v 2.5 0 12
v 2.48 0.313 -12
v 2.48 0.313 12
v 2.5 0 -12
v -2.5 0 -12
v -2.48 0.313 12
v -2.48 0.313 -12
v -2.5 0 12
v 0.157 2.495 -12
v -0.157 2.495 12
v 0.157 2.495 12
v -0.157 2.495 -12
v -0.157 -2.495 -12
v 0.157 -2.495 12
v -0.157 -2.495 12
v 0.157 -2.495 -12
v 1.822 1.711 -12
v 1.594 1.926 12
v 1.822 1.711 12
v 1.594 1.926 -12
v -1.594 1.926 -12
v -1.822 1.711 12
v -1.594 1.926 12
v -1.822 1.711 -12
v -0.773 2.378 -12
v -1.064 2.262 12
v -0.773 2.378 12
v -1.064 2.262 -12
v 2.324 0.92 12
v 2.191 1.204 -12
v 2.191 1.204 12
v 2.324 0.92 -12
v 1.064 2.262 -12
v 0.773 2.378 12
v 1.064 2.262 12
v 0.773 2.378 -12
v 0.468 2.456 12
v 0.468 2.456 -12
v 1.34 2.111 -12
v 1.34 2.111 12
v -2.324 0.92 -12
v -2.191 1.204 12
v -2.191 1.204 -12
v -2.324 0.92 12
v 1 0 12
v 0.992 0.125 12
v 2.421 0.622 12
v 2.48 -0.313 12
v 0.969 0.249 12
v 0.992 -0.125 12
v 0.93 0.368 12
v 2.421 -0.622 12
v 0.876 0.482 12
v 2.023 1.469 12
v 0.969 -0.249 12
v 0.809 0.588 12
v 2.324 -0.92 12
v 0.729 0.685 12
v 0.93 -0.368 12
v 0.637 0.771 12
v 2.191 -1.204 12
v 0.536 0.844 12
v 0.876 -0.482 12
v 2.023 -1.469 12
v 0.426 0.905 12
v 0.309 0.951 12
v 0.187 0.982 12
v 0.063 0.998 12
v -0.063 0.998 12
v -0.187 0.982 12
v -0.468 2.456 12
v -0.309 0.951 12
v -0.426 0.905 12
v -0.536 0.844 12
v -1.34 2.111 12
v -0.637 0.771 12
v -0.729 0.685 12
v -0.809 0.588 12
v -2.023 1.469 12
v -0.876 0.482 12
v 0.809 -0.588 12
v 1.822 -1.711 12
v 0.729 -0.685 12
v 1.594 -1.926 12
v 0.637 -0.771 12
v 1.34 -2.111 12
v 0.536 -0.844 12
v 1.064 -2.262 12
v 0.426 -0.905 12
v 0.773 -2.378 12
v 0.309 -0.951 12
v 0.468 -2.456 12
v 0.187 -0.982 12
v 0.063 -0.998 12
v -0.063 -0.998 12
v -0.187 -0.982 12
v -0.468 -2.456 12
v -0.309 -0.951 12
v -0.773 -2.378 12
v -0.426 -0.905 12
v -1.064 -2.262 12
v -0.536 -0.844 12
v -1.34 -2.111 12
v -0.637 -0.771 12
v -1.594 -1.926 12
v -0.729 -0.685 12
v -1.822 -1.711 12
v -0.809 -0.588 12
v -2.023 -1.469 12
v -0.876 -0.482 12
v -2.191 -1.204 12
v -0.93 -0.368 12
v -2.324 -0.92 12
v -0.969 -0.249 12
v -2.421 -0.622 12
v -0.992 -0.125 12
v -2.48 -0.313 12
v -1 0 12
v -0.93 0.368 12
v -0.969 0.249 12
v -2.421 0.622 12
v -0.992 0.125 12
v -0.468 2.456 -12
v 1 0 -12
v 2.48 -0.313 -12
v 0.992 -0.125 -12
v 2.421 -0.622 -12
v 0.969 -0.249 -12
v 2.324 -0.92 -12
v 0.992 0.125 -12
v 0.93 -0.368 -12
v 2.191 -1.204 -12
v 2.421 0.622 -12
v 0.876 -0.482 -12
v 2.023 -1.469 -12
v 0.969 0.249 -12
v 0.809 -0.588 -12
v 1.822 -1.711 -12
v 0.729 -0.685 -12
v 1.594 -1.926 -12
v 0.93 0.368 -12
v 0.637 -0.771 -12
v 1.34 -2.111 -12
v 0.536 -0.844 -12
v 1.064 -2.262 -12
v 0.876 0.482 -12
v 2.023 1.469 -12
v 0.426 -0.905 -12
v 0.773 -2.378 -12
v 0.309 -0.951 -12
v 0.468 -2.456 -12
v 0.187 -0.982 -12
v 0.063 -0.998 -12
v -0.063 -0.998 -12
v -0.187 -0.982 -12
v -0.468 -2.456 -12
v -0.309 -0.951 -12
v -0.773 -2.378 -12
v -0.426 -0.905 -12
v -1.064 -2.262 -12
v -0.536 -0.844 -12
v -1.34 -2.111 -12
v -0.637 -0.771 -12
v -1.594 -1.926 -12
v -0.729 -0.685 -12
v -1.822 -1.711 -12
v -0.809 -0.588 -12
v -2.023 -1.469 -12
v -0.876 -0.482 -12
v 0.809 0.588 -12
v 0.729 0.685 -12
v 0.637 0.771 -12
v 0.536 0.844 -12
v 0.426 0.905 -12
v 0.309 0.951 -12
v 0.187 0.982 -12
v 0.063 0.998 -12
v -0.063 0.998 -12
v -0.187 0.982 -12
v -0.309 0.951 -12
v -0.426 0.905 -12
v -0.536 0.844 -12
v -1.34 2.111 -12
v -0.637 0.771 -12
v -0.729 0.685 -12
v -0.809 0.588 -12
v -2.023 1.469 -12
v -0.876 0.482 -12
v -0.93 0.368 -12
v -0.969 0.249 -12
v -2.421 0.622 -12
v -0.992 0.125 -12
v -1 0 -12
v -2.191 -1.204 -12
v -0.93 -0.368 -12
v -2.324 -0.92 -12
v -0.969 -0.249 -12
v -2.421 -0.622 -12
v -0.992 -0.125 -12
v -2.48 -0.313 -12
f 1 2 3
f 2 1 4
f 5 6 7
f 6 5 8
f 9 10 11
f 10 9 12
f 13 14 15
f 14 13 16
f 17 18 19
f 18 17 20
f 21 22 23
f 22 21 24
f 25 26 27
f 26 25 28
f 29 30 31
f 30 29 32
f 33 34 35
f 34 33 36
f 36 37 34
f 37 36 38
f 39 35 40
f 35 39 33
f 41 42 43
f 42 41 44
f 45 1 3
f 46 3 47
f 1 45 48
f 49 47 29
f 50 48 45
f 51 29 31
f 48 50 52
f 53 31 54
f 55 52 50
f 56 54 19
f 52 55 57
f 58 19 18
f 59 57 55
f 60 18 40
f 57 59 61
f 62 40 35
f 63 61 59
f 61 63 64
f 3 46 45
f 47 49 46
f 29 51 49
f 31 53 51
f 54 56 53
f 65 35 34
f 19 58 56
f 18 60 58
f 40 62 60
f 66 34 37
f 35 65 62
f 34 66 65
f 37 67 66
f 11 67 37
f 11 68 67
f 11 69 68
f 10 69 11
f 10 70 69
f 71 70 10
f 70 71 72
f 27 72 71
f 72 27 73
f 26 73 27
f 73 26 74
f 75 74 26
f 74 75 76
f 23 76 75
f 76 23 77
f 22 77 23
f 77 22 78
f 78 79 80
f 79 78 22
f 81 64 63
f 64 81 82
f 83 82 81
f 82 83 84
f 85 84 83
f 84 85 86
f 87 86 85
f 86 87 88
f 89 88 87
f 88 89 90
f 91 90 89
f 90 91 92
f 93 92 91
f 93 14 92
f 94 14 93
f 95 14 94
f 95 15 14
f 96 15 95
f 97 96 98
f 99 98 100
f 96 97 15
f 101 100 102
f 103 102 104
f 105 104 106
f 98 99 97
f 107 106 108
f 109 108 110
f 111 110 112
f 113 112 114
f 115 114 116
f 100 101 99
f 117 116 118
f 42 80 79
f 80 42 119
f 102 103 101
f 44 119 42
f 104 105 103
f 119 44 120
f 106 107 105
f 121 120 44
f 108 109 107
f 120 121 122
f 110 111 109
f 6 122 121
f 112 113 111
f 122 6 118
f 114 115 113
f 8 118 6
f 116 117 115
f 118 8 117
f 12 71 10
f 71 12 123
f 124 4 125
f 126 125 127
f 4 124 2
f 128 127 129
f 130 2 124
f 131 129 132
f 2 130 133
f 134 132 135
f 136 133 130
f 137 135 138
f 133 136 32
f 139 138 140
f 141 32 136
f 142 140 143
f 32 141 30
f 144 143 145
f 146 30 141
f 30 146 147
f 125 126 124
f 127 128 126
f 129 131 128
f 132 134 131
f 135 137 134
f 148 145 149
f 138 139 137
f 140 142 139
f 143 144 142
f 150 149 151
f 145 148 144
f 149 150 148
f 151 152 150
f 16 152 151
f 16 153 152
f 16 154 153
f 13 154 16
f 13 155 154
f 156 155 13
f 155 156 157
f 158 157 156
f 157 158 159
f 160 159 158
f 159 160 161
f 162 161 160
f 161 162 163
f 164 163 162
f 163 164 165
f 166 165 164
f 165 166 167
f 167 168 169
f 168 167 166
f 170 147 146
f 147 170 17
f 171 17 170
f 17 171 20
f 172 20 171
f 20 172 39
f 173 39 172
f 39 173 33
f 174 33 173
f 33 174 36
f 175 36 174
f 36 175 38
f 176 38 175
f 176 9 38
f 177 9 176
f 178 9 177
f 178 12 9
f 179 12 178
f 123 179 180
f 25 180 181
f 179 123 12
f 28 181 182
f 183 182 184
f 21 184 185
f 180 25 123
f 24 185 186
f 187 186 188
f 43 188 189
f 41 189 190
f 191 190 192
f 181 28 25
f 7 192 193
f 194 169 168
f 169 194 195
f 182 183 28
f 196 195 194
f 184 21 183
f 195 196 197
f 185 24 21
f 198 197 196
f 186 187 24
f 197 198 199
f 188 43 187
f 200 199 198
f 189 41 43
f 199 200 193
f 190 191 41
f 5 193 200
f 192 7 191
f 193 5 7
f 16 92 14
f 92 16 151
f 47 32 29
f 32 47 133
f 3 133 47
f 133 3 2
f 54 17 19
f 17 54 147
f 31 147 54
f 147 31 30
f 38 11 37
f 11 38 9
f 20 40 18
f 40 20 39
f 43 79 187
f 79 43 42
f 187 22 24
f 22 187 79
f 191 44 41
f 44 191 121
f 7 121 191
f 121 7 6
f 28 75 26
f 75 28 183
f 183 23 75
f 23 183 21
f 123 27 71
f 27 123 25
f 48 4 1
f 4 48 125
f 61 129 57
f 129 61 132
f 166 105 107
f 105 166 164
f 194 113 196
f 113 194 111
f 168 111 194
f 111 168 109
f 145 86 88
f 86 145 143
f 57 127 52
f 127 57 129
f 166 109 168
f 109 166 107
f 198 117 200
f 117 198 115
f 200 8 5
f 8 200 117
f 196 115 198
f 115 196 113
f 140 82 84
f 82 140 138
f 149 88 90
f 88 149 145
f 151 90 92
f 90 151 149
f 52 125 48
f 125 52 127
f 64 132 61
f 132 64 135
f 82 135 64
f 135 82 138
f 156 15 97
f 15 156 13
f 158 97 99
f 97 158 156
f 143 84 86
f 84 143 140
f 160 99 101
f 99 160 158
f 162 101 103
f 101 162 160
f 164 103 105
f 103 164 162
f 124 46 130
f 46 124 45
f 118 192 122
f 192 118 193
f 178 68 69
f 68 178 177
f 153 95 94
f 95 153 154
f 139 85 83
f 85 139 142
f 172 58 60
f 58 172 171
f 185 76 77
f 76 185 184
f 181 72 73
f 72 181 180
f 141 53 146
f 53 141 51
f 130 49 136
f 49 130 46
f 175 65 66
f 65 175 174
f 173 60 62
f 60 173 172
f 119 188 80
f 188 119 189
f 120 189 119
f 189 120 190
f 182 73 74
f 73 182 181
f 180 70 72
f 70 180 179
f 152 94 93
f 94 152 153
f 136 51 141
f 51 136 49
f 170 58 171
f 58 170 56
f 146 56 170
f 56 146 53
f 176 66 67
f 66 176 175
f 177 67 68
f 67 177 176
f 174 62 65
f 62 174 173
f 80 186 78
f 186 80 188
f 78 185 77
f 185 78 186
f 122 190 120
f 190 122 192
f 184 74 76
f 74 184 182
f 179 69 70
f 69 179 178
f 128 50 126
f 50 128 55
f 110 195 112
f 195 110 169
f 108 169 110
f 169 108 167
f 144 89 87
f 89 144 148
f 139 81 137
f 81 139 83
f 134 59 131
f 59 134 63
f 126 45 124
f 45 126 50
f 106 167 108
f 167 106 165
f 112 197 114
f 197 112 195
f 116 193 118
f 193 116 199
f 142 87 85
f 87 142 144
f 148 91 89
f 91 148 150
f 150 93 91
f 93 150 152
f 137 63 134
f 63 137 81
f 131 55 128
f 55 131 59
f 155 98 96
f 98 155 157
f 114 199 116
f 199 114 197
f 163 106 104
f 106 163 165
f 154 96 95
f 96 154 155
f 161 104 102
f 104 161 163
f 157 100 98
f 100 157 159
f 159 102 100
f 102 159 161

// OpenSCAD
$fn = 50;


difference() {
	union() {
		translate(v = [0, 0, -12.0000000000]) {
			cylinder(h = 24, r = 2.5000000000);
		}
	}
	union() {
		translate(v = [0, 0, -100.0000000000]) {
			cylinder(h = 200, r = 1.0000000000);
		}
	}
}
